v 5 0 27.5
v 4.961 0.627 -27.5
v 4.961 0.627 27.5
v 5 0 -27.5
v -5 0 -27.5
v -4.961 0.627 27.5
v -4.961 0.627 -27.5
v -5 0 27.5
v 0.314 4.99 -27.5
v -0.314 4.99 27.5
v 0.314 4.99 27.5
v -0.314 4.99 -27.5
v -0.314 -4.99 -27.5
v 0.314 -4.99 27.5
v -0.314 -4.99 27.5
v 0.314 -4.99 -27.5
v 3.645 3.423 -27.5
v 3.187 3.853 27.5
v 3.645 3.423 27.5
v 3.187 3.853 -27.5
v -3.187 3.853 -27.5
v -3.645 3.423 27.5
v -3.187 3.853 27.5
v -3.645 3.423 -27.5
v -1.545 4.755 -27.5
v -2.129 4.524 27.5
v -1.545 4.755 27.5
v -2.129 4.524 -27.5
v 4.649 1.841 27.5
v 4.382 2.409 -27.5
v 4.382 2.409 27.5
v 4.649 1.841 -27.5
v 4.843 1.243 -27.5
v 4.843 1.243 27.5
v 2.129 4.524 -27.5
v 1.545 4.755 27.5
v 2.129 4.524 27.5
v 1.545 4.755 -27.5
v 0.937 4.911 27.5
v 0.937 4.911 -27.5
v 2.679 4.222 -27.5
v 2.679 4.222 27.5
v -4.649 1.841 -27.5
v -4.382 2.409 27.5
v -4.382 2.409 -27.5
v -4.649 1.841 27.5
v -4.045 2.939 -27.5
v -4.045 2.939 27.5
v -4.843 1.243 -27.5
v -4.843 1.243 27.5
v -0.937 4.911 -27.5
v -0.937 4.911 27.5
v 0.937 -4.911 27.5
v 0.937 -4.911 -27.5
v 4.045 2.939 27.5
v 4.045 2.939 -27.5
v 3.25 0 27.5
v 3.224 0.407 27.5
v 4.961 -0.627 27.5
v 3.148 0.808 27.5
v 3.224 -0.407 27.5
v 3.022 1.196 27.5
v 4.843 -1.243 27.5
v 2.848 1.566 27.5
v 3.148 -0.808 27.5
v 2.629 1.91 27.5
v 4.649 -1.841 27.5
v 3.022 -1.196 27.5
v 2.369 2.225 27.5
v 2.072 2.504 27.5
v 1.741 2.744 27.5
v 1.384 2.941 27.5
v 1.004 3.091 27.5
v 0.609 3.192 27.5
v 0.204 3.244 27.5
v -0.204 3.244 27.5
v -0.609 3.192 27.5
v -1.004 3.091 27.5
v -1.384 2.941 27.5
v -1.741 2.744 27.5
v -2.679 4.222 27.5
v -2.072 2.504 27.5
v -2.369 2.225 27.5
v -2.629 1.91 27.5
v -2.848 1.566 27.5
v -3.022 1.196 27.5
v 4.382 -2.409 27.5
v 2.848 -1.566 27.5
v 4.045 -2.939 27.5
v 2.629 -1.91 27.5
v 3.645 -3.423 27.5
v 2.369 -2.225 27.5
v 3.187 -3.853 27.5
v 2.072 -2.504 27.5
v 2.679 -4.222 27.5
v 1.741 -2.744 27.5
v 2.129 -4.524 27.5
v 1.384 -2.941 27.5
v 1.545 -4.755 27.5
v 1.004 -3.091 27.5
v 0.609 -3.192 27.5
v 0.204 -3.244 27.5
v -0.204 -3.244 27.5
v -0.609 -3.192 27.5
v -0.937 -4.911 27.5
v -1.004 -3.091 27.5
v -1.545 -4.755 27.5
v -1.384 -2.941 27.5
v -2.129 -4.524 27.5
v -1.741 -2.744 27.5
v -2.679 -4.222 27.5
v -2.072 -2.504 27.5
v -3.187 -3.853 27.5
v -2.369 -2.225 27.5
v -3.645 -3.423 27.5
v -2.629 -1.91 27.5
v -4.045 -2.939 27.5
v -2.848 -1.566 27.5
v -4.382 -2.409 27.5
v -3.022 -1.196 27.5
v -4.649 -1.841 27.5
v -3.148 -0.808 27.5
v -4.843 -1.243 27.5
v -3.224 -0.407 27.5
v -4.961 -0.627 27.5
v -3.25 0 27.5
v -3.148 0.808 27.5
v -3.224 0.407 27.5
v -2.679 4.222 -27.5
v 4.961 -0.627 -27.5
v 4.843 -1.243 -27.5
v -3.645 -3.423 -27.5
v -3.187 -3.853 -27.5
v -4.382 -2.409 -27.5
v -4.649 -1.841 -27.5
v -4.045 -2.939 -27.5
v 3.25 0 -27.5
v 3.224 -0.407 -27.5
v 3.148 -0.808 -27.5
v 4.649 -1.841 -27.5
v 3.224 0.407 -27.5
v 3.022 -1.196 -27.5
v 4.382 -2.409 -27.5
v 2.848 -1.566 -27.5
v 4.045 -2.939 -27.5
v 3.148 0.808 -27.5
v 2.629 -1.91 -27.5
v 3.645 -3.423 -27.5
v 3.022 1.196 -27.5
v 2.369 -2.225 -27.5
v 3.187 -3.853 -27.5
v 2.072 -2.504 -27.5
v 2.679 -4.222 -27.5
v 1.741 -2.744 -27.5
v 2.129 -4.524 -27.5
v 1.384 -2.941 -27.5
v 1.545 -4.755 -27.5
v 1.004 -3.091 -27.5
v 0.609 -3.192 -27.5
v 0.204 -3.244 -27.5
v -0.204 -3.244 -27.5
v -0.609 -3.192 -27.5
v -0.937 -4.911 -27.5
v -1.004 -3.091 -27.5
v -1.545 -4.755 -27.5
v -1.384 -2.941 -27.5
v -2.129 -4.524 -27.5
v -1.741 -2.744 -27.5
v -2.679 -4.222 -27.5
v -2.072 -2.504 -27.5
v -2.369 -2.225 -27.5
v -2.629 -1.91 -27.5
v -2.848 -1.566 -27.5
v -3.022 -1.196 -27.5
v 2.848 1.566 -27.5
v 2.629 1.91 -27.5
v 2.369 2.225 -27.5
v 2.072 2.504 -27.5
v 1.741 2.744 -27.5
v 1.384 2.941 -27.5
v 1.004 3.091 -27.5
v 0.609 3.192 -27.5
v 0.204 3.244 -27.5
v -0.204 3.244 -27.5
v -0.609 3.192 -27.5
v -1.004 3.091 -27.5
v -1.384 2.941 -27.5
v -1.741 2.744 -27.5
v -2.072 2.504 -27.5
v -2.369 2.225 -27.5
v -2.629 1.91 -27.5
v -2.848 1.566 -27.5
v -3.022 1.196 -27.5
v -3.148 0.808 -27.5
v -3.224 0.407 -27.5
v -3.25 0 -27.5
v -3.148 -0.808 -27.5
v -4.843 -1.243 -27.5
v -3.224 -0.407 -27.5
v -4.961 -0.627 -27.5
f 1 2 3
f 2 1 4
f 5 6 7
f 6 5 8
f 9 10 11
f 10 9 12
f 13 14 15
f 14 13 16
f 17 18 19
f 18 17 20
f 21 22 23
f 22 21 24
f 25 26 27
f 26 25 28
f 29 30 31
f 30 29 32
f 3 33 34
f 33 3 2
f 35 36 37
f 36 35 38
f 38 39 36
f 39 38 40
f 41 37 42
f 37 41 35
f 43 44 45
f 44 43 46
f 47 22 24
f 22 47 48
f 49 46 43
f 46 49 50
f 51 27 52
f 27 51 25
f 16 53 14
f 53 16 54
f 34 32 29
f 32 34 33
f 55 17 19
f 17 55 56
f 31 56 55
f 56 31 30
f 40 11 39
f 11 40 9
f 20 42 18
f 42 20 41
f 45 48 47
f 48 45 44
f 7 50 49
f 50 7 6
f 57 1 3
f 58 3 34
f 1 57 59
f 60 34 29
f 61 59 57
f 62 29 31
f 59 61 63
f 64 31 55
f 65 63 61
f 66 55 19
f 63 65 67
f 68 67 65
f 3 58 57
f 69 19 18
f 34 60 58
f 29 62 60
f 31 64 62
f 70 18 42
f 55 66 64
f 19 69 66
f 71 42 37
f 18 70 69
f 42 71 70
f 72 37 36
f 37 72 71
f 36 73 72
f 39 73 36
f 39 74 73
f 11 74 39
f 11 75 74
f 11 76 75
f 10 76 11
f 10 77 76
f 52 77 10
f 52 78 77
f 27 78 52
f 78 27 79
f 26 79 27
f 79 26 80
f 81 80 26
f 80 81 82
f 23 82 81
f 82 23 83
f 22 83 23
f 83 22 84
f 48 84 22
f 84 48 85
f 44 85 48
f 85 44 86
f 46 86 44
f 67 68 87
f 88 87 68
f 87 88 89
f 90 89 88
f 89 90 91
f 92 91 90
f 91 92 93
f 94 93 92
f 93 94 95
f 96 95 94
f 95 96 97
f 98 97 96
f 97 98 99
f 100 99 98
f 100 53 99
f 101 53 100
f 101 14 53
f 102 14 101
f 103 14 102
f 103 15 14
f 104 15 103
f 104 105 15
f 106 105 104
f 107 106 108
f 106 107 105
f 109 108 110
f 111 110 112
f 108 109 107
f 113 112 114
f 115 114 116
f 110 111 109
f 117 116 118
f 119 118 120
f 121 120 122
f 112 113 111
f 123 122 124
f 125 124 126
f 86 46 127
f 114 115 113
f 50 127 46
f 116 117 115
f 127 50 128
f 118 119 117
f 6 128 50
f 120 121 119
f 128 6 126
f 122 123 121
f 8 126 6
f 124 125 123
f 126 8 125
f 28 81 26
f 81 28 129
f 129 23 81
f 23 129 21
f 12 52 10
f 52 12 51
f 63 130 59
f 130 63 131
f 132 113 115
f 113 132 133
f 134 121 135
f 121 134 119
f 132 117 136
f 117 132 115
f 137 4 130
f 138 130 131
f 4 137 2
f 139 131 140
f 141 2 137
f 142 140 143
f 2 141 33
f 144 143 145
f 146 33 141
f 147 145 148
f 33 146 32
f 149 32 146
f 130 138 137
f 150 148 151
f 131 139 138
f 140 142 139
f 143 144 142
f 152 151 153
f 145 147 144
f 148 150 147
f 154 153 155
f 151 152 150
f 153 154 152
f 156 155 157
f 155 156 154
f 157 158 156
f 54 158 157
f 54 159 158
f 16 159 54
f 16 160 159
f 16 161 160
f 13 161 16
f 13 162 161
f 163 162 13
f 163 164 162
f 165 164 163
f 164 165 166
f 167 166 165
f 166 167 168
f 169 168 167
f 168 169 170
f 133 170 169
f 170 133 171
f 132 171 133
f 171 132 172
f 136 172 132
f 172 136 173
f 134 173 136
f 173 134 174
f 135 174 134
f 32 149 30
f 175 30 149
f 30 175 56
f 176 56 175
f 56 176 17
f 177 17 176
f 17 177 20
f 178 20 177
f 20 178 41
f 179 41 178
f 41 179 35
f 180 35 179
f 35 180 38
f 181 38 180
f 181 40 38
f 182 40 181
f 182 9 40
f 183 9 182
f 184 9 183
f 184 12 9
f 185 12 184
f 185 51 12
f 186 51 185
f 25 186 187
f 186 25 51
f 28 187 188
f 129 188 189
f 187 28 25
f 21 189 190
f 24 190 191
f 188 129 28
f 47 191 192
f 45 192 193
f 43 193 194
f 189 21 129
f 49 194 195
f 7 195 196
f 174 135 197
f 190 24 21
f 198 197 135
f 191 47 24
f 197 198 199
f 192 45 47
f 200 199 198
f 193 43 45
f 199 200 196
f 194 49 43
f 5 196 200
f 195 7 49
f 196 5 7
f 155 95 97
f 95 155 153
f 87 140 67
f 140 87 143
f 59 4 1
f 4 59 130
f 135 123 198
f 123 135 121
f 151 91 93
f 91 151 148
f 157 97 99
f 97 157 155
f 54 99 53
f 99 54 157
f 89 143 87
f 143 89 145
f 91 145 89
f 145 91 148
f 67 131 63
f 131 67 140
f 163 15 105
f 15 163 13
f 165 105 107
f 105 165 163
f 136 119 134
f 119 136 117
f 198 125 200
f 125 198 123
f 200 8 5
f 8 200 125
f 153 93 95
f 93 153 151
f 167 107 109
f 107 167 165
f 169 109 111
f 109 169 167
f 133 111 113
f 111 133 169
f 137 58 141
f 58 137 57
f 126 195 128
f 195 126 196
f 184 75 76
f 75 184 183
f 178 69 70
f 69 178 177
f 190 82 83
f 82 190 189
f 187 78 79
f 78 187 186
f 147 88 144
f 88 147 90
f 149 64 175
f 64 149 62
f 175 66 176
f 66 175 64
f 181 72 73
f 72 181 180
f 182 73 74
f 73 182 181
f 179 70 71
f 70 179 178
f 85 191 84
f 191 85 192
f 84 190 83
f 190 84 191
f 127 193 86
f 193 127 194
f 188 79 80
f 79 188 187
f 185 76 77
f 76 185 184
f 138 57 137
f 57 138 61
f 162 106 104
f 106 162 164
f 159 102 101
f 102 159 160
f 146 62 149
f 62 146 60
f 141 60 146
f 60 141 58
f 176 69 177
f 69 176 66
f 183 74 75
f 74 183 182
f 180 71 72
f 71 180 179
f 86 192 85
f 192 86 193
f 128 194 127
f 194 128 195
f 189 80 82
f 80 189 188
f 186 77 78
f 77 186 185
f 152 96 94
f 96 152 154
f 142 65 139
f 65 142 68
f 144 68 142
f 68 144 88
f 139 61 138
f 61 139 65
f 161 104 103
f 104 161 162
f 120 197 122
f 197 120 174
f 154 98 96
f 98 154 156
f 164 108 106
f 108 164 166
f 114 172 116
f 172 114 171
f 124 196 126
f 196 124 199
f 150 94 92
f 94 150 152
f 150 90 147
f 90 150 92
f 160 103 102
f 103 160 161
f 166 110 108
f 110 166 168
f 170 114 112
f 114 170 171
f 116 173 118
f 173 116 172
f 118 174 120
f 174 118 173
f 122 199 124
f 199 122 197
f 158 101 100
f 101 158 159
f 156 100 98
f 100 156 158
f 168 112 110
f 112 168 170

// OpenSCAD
$fn = 50;


difference() {
	union() {
		translate(v = [0, 0, -27.5000000000]) {
			cylinder(h = 55, r = 5.0000000000);
		}
	}
	union() {
		translate(v = [0, 0, -100.0000000000]) {
			cylinder(h = 200, r = 3.2500000000);
		}
	}
}
